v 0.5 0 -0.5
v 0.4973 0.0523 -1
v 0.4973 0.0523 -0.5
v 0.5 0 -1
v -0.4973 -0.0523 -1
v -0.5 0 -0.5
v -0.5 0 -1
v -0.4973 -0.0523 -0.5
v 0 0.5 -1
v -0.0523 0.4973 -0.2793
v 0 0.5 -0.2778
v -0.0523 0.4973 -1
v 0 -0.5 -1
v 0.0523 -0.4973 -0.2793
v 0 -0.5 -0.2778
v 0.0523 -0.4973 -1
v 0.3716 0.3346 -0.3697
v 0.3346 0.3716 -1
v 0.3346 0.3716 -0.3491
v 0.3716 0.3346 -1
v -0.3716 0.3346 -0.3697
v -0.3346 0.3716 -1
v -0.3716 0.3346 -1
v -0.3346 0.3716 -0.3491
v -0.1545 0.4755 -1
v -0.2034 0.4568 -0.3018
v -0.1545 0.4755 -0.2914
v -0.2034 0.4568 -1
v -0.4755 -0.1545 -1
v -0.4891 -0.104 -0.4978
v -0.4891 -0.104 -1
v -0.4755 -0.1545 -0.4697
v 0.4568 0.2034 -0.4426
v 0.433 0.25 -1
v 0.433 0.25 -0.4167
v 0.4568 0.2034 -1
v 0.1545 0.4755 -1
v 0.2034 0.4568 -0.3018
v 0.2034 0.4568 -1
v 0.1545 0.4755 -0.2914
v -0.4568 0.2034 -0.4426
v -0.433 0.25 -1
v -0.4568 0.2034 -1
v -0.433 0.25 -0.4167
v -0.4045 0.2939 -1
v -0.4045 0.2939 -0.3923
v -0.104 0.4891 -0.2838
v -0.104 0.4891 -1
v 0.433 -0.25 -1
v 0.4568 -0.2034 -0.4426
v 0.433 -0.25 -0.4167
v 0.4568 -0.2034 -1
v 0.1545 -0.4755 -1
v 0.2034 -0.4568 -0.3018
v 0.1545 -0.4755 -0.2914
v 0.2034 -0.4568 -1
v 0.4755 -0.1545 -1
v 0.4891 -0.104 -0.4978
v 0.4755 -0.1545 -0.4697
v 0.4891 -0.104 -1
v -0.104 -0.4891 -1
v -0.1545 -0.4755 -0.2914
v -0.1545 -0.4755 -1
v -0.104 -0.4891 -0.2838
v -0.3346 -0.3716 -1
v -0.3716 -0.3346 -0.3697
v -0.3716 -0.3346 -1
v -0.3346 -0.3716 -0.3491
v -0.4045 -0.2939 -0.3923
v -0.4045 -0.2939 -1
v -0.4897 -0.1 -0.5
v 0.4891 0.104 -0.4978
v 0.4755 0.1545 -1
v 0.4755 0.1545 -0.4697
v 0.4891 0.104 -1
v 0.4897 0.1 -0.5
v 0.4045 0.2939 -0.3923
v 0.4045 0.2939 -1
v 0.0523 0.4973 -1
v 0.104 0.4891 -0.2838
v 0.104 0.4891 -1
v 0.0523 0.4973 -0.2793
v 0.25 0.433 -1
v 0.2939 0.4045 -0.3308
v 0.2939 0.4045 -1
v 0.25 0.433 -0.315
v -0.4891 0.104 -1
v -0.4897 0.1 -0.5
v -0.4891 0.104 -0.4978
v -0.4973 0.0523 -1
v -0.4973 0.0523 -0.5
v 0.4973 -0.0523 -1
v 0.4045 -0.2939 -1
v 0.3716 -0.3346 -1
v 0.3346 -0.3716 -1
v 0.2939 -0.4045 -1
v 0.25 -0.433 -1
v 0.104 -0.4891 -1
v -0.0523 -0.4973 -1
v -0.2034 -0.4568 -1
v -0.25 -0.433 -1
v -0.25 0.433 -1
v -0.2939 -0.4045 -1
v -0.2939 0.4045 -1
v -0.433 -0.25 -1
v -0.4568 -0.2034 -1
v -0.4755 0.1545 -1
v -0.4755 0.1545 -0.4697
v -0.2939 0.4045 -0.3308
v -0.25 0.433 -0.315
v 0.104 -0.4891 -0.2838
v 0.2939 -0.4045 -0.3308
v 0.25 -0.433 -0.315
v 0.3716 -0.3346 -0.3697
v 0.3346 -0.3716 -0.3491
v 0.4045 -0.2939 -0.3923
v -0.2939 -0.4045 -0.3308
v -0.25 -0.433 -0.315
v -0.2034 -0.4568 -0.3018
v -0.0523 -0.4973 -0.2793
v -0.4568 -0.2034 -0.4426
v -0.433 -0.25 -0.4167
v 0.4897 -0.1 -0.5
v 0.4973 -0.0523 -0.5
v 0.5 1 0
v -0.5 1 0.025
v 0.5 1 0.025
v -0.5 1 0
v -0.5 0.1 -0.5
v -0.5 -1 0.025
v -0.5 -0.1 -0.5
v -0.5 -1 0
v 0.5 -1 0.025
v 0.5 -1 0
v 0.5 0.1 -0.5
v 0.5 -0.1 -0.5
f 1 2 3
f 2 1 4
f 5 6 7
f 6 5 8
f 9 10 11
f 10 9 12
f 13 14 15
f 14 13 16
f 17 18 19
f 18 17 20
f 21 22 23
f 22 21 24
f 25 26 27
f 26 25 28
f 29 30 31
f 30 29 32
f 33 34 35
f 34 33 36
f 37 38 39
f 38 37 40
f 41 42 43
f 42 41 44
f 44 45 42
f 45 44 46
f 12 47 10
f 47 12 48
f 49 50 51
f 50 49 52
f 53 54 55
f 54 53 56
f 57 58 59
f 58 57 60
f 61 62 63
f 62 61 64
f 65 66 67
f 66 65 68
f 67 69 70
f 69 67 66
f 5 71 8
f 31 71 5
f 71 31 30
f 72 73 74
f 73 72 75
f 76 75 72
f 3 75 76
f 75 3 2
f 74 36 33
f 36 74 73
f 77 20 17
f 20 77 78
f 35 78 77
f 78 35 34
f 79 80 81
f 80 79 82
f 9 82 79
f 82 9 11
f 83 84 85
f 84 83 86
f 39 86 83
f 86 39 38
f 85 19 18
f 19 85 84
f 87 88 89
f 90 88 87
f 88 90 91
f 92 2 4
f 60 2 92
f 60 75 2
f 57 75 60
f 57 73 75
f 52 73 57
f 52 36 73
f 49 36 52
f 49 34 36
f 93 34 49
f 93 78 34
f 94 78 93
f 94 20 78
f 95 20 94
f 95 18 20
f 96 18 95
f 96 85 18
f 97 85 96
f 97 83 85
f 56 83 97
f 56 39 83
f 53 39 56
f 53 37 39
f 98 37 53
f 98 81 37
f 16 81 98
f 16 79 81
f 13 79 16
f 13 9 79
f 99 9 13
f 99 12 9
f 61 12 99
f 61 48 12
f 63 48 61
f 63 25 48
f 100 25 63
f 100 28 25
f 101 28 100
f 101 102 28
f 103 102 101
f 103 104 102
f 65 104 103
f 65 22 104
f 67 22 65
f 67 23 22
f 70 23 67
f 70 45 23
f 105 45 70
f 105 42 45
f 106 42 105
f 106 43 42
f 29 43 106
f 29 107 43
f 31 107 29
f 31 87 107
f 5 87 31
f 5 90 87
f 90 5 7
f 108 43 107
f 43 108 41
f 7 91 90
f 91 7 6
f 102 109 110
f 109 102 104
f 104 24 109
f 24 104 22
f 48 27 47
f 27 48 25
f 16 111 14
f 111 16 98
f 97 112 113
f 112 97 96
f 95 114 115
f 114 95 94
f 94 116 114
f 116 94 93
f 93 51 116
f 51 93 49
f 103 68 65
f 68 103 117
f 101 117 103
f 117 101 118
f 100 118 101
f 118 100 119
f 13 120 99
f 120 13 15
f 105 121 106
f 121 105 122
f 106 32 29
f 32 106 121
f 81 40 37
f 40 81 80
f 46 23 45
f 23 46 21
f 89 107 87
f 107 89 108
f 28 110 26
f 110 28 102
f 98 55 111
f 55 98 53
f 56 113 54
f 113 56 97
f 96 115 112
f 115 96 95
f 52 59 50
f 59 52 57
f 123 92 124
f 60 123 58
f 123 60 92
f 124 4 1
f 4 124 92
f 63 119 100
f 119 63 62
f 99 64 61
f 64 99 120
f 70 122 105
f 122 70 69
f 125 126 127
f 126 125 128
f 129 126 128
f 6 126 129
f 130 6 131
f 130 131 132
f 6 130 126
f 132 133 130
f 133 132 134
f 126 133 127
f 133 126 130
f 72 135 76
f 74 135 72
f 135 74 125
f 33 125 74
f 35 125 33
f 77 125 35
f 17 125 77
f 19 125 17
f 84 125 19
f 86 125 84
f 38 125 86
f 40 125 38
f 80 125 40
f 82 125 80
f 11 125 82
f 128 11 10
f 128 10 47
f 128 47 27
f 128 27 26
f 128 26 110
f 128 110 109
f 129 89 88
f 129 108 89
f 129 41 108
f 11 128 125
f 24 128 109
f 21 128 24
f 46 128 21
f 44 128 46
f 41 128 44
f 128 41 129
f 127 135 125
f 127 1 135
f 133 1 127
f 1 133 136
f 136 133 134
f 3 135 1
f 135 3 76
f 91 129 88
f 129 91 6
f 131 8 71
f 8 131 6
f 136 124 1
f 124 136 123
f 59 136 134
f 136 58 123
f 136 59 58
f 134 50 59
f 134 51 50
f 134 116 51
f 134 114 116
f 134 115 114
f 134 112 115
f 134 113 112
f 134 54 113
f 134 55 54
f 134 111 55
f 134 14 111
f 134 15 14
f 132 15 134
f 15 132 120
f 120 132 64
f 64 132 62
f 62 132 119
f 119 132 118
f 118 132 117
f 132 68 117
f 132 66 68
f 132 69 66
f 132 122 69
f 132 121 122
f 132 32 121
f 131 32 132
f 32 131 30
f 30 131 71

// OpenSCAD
//----------------------------------------------
// T Support 
// Size must height = 1 mm 
//----------------------------------------------
$fn=60;

translate([-0.5,-0.5,-0.5]) 
union() {
    translate([0.5,0.5,0.0]) cylinder( h=1, r=0.5 , center = true);
    translate([1,0.5,0.5]) rotate([-90, 0, 90]) {
			linear_extrude(height=1) {
				polygon(points=[[-1,0],[-1,-0.025],[1,-0.025],[1,0],[-1,0],[1,0],[0.1,0.5],[-0.1,0.5]], convexity=1);
			}        
    }
}
